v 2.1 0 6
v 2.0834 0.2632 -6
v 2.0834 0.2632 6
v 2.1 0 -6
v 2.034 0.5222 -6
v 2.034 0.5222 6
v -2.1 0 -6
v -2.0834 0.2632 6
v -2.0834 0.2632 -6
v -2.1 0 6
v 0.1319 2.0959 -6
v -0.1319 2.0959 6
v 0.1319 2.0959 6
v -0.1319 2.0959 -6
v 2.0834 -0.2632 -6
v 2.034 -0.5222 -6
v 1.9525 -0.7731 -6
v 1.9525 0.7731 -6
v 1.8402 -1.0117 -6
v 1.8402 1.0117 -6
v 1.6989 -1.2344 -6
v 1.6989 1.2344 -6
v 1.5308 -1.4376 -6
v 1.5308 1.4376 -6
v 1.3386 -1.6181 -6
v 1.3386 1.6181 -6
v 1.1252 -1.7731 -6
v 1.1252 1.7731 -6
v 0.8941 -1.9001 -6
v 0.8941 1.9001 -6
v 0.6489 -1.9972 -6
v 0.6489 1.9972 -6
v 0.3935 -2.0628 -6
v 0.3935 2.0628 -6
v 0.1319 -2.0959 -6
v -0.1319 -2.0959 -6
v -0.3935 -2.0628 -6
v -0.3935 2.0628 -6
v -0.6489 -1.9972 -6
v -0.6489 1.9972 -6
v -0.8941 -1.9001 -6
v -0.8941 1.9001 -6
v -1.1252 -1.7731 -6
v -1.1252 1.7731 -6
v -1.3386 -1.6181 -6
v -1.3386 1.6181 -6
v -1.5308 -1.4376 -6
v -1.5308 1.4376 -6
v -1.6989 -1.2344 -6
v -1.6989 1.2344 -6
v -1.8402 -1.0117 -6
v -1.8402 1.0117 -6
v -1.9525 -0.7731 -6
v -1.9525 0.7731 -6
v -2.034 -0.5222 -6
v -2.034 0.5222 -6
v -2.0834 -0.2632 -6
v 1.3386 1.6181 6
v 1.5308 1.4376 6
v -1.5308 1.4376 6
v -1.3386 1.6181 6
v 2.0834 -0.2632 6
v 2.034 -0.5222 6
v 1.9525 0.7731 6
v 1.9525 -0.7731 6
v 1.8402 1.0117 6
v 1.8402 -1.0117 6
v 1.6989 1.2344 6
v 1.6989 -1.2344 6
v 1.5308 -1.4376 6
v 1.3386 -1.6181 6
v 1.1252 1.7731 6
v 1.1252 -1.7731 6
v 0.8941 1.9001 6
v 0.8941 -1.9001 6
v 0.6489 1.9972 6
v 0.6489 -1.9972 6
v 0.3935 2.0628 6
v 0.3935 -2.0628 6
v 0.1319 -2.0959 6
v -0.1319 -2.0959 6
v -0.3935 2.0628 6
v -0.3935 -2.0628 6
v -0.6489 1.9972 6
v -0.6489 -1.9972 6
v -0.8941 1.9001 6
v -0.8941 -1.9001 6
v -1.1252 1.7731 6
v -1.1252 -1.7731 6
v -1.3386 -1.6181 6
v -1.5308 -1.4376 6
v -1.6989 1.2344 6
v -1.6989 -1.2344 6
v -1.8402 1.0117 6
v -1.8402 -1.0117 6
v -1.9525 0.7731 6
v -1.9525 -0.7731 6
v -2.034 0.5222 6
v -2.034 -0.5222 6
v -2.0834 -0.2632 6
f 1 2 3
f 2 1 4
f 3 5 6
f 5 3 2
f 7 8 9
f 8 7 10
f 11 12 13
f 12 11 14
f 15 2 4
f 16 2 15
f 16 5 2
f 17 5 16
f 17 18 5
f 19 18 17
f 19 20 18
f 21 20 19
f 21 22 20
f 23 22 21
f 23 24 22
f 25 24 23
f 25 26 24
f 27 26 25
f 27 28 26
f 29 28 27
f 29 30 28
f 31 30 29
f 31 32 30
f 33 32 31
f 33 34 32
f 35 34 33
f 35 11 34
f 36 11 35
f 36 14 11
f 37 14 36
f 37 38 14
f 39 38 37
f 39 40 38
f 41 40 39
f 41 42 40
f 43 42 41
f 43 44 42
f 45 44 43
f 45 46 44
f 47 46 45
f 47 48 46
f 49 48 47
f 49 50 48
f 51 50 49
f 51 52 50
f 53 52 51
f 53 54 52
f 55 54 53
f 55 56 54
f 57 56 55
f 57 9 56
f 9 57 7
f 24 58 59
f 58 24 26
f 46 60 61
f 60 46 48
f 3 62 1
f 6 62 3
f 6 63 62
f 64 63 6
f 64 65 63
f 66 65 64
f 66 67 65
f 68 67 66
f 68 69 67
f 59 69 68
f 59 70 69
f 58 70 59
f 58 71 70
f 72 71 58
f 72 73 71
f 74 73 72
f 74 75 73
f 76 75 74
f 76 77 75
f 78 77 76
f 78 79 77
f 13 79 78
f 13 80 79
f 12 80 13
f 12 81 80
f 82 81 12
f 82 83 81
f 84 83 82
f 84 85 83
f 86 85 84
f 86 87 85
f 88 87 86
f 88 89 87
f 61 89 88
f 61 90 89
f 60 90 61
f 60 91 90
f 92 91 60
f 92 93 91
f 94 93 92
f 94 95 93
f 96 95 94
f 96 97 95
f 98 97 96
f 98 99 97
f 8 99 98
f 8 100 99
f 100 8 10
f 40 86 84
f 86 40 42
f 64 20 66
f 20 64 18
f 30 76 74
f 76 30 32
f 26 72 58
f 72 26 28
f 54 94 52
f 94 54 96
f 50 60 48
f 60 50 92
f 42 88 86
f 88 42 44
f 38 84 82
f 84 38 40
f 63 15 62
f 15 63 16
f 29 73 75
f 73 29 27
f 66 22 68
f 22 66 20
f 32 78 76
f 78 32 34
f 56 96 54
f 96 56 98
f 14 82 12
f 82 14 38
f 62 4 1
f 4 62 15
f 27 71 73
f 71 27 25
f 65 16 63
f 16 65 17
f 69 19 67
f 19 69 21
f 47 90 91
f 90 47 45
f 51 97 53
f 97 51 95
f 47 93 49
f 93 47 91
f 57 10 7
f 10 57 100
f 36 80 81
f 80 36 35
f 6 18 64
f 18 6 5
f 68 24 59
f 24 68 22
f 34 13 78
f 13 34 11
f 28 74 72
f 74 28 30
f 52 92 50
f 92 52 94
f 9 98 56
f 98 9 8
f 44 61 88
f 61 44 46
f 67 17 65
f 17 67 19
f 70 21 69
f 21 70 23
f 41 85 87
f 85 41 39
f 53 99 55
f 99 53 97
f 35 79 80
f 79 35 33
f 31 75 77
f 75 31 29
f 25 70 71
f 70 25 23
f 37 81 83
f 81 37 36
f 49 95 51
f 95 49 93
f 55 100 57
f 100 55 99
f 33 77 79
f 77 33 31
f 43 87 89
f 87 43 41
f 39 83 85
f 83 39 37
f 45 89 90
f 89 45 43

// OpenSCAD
$fn = 50;


difference() {
	union() {
		translate(v = [0, 0, -6.0000000000]) {
			cylinder(h = 12, r = 2.1000000000);
		}
	}
	union() {
		translate(v = [0, 0, -100.0000000000]) {
			cylinder(h = 200, r = 0);
		}
	}
}
